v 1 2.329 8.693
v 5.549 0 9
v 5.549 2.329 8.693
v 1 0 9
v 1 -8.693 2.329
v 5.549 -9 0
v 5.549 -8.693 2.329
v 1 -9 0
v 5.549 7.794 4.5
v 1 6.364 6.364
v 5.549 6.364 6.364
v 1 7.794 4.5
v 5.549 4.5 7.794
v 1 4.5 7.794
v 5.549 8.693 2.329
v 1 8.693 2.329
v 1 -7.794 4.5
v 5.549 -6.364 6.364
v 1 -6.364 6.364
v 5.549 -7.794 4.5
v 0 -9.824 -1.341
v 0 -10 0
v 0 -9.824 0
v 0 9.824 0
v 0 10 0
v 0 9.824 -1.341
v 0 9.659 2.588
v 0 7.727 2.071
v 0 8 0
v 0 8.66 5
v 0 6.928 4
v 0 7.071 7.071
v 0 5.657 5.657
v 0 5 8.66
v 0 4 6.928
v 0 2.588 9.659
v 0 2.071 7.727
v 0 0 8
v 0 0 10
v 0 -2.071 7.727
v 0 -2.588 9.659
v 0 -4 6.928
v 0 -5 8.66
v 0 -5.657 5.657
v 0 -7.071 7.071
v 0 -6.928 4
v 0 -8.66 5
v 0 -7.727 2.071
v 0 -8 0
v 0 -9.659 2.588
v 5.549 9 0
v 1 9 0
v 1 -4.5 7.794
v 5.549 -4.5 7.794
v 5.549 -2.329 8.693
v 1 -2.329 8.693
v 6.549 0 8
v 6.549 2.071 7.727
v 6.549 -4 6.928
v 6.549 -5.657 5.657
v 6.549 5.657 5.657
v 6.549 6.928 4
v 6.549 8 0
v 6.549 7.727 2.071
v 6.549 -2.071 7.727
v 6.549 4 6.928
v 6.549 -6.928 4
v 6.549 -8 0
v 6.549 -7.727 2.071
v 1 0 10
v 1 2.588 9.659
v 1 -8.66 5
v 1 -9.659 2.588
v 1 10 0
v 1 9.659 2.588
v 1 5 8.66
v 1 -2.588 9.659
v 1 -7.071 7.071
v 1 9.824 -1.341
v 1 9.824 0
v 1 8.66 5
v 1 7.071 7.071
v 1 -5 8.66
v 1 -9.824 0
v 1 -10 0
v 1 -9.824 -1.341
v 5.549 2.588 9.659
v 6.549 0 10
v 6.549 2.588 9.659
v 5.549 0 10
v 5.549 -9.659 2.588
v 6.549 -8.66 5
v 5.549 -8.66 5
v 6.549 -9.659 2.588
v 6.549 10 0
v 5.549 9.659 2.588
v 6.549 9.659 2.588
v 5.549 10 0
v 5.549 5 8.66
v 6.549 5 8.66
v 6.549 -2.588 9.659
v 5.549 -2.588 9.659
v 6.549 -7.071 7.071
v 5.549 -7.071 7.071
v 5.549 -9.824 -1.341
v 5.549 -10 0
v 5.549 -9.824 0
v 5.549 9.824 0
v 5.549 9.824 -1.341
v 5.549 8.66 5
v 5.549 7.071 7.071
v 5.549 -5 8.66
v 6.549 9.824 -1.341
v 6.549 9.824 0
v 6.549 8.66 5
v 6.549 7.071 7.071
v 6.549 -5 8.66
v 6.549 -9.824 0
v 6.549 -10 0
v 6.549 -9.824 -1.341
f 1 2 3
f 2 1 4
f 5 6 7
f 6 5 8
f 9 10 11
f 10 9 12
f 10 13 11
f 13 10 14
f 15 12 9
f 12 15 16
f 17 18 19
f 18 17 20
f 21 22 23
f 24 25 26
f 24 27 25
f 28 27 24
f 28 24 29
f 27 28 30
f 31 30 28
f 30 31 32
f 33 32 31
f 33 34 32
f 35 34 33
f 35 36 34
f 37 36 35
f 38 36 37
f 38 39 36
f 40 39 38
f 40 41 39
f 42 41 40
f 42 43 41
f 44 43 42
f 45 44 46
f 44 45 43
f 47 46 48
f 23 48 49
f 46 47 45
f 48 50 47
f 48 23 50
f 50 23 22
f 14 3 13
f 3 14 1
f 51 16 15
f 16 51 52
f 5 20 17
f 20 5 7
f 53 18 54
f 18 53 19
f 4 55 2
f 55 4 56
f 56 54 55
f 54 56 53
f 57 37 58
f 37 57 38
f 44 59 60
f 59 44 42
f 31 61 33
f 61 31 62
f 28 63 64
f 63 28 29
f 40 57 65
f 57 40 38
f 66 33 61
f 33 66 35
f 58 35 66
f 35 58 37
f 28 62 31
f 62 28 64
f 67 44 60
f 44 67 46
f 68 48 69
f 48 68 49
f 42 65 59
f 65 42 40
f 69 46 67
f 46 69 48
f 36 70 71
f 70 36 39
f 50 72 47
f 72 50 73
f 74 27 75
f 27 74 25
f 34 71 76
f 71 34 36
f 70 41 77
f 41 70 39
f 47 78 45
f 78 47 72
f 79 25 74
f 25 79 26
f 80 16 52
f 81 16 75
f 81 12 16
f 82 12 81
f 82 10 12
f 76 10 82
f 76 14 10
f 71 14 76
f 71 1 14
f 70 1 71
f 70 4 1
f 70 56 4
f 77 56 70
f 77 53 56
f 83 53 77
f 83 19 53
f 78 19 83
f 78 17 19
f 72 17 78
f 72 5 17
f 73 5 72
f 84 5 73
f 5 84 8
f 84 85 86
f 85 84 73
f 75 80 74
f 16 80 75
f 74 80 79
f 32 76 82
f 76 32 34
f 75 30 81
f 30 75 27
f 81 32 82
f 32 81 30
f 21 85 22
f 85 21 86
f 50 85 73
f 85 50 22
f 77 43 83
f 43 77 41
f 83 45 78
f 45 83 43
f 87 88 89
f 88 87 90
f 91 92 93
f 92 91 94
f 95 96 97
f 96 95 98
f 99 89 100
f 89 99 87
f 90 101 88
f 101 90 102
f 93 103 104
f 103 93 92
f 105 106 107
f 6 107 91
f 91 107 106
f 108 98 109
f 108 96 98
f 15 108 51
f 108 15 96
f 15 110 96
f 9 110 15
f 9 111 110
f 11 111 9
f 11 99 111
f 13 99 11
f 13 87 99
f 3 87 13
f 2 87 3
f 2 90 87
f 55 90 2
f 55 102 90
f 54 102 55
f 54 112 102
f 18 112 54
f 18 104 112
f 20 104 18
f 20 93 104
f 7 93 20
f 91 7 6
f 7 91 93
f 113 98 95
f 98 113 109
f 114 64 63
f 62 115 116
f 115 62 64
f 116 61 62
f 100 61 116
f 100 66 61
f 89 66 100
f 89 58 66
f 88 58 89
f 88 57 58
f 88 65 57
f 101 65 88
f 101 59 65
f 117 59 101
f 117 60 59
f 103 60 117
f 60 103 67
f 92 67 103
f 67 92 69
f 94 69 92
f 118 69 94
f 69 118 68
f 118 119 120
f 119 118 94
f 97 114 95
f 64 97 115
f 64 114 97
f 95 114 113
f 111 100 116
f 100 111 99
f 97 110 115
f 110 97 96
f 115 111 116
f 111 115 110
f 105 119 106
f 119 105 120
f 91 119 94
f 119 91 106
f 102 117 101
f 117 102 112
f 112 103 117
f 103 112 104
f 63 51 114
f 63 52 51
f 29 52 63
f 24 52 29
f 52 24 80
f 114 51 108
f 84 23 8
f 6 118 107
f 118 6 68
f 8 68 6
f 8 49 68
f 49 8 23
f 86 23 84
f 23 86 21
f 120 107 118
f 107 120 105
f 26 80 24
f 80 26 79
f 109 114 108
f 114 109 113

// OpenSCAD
// file: ../build_environments.scad
// build_environments.scad: modules to build level sections
//

module pool(diameter=10.0, wall_height=2.0, step_width=3.0, connections=[])
{
    difference() {
        union() {
        difference() {
            cylinder(h=0.5,r1=diameter+step_width,r2=diameter+step_width,$fn=48);
            translate([0,0,-0.1])
                cylinder(h=0.7,r1=diameter,r2=diameter,$fn=48);
        }
        difference() {
            cylinder(h=wall_height,r1=diameter+step_width+1.0,r2=diameter+step_width+1.0,$fn=48);
            translate([0,0,-0.1])
                cylinder(h=wall_height+0.2,r1=diameter+step_width,r2=diameter+step_width,$fn=48);
        }
        }
    
        for (c = connections)
        {
            rotate([0,90,0]) {
                angle = atan2(c[1],c[0]);
                rotate([-angle,0,0]) {
                    cylinder(h=diameter+5.0,r1=c[2],r2=c[2],$fn=48);
                }
            }
        }
    }
}

module straight(length=10.0, width=2.0, dy1=0.0, dy2=0.0, dz=0.0)
{
    dims = [0, 0, 0, 0, 0, (dz/length)];
    matrix = [
        [ 1, dims[0], dims[1], 0 ],
        [ dims[2], 1, dims[4], 0 ],
        [ dims[5], dims[3], 1, 0 ],
        [ 0, 0, 0, 1 ]
    ];
    multmatrix(matrix)
    difference() {
        translate([dy1,0,0])
        union() {
            rotate([0,90,0]) {
                difference() {
                    cylinder(h=(length-dy1-dy2),r1=width+1.0,r2=width+1.0,$fn=24);
                    translate([0,0,-0.1])
                        cylinder(h=(length-dy1-dy2+0.2),r1=width,r2=width,$fn=24);
                }
                difference() {
                    cylinder(h=1.0,r1=width+2.0,r2=width+2.0,$fn=24);
                    translate([0,0,-0.1])
                        cylinder(h=1.2,r1=width,r2=width,$fn=24);
                }
                translate([0,0,(length-dy1-dy2)-1.0]) {
                    difference() {
                        cylinder(h=1.0,r1=width+2.0,r2=width+2.0,$fn=24);
                        translate([0,0,-0.1])
                            cylinder(h=1.2,r1=width,r2=width,$fn=24);
                    }
                }
            }
        }
        translate([0,0,-(2*width+4.0)/2])
            cube([3*length,3*length,2*width+4.0],center=true);
    }
}

module curve(p0=[0,0], center=[0,0], dir=1, angle=0.0, width=2.0)
{
    radius = sqrt((p0[0]-center[0])*(p0[0]-center[0]) + (p0[1]-center[1])*(p0[1]-center[1]));
    if (dir == 0) {
        difference() {
            rotate([0,0,-90])
            difference() {
                rotate_extrude(angle = angle, convexity = 10, $fn=32)
                    translate([radius, 0, 0])
                        circle(r = width+1.0,$fn=24);
                rotate([0,0,-1.0])
                    rotate_extrude(angle = angle+2.0, convexity = 10, $fn=32)
                        translate([radius, 0, 0])
                            circle(r = width,$fn=24);
            }
            translate([0,0,-(2*width+4.0)/2])
                cube([5*radius,5*radius,2*width+4.0],center=true);
        }
    }
    else {
        difference() {
            rotate([0,0,90])
            difference() {
                rotate_extrude(angle = -angle, convexity = 10, $fn=32)
                    translate([radius, 0, 0])
                        circle(r = width+1.0,$fn=24);
                rotate([0,0,1.0])
                    rotate_extrude(angle = -angle-2.0, convexity = 10, $fn=32)
                        translate([radius, 0, 0])
                            circle(r = width,$fn=24);
            }
            translate([0,0,-(2*width+4.0)/2])
                cube([5*radius,5*radius,2*width+4.0],center=true);
        }
    }

}

// test pool
//pool(diameter=12.0000, wall_height=3.0000, step_width=3.0000, connections=[[0.0000,-26.0000,2.0000], [23.6074,0.0000,2.0000]]);

// test straight, slope
//straight(length=26.0000, width=2.0000, dy1=11.8322, dy2=6.7082, dz=0.0000);
//straight(length=29.1549, width=12.0000, dy1=0.0000, dy2=0.0000, dz=-15.0000);

// test curve
//curve(p0=[23.6074, 0.0000], center=[23.6074, 5.0000], dir=0, angle=60.1011, width=2.0000);
//curve(p0=[33.6426, 12.4219], center=[37.9771, 9.9295], dir=1, angle=120.4627, width=2.0000);
// main file
use <../build_environments.scad>;
straight(length=6.5490, width=8.0000, dy1=0.0000, dy2=0.0000, dz=0.0000);
